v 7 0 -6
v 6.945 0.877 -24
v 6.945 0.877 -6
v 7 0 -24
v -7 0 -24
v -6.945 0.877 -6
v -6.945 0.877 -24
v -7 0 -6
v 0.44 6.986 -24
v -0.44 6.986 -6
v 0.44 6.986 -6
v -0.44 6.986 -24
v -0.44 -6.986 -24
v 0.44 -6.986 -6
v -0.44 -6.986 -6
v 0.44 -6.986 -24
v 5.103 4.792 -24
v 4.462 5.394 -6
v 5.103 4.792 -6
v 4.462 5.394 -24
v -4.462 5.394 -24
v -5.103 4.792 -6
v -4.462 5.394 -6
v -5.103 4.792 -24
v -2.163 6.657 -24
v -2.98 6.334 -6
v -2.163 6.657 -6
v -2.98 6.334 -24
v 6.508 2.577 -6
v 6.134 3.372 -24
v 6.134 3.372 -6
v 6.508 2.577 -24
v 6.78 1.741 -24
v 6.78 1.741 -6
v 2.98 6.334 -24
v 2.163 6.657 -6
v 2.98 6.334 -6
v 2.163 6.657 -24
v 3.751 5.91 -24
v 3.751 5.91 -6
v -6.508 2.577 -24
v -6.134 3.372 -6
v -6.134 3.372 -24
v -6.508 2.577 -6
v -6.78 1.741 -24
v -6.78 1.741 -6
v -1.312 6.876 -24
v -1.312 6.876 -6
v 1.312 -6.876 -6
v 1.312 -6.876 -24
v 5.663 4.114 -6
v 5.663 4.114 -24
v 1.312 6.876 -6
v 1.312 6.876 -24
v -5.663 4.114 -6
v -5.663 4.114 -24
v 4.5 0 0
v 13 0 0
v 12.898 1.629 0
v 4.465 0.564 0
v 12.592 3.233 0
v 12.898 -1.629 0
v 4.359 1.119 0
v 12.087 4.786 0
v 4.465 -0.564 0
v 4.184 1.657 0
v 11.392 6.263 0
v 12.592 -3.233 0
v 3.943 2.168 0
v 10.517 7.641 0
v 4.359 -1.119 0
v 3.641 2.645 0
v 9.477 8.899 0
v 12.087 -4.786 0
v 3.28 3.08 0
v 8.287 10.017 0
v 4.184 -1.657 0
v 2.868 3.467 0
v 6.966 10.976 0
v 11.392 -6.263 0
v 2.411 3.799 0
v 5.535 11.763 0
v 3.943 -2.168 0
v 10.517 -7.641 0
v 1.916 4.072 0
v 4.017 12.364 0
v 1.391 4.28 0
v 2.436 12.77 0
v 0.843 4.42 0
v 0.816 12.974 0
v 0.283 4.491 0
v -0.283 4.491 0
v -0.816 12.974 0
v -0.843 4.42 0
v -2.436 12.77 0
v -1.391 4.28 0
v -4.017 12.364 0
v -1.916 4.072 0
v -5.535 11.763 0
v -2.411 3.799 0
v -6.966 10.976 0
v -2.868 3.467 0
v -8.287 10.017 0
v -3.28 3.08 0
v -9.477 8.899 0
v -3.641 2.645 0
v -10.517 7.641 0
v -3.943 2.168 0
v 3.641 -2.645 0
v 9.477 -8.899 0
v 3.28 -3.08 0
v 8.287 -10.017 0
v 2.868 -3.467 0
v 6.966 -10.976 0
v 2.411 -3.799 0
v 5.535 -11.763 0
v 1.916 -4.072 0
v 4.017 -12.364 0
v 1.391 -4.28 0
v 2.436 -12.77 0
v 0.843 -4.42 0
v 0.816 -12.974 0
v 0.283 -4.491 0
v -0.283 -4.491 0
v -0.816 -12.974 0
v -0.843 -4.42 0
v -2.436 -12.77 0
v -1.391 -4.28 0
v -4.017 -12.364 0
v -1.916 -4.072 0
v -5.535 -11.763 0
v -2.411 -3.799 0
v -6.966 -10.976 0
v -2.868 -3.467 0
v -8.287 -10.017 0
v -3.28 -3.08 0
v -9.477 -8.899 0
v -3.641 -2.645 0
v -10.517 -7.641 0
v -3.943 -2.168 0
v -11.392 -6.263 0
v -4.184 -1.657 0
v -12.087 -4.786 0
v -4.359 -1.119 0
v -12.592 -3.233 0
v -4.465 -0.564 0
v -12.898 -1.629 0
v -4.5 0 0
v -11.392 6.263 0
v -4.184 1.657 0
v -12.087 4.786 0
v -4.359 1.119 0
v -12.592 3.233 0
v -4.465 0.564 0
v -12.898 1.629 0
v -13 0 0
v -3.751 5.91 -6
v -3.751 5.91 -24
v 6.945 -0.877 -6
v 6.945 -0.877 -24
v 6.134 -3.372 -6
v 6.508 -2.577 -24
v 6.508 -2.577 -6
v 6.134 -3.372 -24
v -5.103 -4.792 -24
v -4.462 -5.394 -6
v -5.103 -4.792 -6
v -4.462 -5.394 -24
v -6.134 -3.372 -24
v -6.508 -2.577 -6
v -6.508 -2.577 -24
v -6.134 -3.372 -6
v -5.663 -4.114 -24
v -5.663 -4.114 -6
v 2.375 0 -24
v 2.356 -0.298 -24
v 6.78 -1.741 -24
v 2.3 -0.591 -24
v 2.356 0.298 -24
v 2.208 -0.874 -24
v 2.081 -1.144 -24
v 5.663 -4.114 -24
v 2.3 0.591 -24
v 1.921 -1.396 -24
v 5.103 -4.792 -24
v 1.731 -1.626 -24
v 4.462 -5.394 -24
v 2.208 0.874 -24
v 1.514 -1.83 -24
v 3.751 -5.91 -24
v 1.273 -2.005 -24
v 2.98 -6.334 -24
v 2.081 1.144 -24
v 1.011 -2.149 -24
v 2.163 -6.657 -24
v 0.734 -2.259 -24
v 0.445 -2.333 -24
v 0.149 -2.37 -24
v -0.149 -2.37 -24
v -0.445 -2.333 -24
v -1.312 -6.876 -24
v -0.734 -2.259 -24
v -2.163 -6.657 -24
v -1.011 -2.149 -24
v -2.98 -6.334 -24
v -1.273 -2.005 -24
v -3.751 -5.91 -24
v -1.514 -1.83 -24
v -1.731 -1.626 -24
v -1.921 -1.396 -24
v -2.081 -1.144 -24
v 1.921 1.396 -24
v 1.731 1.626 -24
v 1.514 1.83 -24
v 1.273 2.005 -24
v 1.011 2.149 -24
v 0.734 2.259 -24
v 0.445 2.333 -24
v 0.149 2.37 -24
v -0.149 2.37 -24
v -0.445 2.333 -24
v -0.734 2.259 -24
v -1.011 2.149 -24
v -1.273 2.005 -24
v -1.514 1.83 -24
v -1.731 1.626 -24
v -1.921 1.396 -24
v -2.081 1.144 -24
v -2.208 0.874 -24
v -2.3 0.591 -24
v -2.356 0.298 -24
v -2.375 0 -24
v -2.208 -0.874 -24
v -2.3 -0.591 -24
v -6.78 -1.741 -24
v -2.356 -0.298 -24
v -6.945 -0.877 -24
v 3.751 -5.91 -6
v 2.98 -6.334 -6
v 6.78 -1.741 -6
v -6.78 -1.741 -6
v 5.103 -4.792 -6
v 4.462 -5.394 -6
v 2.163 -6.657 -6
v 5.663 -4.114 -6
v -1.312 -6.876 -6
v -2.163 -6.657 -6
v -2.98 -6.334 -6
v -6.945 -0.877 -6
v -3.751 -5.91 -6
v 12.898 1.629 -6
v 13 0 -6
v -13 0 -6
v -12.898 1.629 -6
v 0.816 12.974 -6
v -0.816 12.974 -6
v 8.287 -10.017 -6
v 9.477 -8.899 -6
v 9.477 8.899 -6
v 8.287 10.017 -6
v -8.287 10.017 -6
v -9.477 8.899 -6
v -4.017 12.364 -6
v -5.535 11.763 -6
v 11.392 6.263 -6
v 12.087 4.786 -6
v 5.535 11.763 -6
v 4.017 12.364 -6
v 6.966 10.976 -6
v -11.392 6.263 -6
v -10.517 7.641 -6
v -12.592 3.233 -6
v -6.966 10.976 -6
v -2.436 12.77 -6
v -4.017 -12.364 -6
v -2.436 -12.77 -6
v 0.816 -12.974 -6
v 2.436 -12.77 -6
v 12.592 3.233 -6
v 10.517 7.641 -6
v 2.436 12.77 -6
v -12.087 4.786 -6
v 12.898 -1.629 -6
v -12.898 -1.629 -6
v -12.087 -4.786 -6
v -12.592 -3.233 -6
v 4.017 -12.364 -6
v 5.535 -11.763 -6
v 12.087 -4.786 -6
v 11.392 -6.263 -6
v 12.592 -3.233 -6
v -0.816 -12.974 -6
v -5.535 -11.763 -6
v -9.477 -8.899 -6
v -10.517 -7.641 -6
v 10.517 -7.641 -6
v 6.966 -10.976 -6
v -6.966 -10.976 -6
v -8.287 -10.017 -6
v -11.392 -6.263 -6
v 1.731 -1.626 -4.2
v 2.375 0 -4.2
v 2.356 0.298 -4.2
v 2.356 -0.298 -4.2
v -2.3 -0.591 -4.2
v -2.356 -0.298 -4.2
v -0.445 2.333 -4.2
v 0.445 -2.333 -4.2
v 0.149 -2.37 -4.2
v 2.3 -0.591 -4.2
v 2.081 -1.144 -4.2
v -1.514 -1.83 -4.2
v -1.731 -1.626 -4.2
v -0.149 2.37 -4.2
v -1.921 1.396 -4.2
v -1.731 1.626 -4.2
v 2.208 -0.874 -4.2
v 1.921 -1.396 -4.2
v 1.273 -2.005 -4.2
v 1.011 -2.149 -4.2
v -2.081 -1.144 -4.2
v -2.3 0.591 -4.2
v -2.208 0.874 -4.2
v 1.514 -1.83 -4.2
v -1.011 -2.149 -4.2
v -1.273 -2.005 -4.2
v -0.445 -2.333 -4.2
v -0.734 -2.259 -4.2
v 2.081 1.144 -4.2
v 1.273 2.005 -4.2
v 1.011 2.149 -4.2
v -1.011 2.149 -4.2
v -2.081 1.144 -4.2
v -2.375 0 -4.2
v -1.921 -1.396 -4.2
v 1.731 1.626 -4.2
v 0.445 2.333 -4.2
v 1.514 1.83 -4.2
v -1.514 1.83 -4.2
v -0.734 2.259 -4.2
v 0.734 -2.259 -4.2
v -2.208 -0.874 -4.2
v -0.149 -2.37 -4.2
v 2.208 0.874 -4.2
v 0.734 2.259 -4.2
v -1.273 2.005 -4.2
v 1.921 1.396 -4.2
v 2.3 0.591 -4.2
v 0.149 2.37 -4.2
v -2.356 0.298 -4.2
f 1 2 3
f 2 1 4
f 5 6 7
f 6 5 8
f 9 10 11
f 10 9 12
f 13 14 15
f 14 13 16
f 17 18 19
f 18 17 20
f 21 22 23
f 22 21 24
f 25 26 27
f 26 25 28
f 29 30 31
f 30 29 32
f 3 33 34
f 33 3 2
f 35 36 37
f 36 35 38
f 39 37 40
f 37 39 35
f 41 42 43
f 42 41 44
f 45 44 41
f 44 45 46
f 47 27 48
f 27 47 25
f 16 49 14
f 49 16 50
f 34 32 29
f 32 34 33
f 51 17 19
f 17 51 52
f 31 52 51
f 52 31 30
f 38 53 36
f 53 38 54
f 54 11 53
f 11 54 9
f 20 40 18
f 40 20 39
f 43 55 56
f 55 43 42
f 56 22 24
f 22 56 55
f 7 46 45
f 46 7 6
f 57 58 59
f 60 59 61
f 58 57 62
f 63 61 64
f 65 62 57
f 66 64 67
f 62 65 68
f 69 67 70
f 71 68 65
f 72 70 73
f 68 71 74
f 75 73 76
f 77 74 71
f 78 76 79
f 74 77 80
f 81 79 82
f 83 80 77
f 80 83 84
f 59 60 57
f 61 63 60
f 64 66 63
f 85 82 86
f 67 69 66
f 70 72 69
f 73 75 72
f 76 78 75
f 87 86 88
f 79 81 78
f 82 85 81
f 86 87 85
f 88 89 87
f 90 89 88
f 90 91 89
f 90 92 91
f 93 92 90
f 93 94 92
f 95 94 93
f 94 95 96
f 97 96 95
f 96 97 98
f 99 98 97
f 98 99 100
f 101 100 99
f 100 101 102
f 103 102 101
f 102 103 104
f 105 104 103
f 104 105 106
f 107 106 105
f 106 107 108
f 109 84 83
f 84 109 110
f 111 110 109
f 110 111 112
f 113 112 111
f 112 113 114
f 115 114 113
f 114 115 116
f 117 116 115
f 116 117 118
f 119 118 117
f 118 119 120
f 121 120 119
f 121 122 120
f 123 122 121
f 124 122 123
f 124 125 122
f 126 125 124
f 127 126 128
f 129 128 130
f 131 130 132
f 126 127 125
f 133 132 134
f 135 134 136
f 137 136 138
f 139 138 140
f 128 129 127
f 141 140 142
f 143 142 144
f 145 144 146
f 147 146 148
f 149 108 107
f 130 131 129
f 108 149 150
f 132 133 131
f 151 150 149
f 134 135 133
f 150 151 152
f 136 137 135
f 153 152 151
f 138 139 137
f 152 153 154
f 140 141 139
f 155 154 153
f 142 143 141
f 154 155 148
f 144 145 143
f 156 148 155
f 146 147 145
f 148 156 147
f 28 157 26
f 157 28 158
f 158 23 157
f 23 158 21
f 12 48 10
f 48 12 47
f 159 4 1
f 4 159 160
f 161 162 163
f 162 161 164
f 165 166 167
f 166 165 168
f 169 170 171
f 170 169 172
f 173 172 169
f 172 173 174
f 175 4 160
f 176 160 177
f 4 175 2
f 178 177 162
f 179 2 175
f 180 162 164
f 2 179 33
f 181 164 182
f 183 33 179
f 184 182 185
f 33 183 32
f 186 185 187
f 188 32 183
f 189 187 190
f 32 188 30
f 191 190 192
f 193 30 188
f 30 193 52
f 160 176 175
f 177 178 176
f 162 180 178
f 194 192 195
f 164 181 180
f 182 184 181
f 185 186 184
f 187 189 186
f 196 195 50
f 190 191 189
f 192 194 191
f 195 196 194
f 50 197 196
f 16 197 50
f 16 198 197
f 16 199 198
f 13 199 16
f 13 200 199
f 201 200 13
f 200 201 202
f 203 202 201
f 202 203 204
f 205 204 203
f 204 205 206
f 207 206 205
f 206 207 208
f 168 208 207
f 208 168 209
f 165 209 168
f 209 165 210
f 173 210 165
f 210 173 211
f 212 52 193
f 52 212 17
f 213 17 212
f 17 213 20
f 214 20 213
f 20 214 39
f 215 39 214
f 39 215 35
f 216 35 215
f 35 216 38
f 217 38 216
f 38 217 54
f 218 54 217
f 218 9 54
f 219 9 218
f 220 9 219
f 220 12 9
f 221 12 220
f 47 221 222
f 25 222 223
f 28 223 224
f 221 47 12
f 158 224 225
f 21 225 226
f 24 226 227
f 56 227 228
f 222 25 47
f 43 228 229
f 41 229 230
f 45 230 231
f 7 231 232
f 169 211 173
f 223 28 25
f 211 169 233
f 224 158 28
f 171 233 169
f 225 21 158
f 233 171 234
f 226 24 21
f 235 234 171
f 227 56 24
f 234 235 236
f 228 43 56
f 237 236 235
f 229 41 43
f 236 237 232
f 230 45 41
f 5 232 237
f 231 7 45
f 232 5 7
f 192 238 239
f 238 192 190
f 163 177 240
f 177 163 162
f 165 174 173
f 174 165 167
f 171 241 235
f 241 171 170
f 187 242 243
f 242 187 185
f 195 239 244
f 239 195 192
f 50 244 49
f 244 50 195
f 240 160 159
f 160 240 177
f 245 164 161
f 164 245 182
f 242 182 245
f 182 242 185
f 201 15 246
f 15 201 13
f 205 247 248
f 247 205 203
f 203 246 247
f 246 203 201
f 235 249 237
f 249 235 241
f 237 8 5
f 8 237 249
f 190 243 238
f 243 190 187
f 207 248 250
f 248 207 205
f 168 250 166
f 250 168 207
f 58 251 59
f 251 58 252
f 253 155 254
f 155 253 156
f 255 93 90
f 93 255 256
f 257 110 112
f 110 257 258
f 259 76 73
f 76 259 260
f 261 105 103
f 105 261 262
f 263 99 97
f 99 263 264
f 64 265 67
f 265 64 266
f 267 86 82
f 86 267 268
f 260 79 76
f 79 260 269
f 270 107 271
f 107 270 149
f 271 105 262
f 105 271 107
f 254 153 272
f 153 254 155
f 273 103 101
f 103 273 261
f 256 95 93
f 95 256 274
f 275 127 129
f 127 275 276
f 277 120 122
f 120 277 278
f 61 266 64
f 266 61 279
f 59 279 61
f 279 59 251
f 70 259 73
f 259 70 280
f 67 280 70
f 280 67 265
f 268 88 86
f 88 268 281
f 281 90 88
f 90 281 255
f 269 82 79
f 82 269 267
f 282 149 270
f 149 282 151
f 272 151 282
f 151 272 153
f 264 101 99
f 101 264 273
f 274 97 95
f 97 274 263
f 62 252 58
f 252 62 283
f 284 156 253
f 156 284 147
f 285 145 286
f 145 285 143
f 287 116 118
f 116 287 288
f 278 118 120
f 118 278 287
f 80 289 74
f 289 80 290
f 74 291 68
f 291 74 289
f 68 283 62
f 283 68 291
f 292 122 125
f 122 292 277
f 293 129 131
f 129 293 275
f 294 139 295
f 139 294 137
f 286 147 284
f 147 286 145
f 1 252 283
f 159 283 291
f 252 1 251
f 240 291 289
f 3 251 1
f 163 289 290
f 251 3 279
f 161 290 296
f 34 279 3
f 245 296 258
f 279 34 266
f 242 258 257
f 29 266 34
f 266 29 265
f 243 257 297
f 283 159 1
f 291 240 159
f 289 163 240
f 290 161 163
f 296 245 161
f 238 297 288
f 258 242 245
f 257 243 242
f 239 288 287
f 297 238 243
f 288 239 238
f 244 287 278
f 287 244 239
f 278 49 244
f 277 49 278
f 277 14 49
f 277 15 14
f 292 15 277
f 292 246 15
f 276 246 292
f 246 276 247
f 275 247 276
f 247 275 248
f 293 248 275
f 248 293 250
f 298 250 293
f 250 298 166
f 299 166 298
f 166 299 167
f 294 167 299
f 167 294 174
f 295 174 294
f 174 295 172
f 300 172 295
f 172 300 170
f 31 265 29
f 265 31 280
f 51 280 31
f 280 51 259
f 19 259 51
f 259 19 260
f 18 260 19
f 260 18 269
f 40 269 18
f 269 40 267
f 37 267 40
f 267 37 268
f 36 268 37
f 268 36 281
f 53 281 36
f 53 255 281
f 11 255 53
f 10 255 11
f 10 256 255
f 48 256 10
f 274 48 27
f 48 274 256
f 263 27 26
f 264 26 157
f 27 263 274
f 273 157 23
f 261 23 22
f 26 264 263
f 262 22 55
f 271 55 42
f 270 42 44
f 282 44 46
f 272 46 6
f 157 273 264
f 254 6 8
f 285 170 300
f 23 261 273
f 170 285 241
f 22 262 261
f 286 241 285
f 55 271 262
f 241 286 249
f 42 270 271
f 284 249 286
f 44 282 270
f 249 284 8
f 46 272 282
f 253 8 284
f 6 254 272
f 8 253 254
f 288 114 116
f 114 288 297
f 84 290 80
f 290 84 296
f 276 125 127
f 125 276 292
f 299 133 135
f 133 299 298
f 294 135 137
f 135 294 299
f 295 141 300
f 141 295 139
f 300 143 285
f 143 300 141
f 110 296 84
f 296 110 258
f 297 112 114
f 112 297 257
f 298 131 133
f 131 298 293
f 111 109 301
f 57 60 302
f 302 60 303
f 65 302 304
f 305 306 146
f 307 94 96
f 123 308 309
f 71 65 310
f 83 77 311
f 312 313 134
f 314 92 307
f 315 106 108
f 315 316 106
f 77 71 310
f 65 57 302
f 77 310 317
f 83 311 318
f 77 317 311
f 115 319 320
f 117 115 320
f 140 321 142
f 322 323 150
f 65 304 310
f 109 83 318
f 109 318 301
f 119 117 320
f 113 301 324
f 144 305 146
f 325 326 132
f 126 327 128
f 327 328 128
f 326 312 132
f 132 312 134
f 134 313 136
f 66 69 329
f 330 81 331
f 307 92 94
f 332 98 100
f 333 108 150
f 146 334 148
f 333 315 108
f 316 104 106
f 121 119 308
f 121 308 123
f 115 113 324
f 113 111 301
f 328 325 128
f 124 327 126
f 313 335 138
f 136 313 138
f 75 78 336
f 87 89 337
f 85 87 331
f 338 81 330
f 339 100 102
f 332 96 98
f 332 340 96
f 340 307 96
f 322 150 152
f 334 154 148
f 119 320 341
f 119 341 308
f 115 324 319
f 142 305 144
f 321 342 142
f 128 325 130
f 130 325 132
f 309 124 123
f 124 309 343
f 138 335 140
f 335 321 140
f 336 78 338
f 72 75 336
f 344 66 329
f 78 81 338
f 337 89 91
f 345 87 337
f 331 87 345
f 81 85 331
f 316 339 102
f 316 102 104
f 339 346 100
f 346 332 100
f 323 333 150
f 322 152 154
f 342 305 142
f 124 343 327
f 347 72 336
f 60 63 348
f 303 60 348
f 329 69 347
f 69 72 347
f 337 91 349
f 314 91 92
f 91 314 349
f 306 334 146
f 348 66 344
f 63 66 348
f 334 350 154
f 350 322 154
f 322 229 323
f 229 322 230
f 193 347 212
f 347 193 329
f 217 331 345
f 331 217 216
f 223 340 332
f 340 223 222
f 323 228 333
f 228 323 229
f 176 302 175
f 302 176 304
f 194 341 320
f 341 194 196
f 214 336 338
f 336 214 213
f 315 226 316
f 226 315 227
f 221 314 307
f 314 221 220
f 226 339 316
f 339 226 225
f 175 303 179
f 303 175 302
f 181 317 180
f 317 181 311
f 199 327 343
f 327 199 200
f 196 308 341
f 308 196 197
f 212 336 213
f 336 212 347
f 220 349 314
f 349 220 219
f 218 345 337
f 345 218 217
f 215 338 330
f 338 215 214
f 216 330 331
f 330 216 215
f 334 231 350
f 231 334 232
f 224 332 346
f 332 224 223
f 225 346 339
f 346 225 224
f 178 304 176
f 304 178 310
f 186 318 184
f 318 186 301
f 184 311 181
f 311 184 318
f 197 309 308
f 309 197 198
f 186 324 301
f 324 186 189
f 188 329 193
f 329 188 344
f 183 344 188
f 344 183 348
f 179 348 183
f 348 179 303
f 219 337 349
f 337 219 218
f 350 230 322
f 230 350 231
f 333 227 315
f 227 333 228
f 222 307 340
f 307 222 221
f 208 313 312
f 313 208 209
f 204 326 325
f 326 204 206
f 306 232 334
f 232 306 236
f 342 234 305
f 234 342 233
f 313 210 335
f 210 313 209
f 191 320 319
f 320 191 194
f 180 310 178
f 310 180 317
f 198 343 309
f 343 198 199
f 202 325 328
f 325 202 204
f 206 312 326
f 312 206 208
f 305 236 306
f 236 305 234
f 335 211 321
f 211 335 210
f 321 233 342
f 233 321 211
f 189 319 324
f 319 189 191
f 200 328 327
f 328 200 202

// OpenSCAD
$fn = 50;


difference() {
	union() {
		translate(v = [0, 0, -24.0000000000]) {
			cylinder(h = 24, r = 7.0000000000);
		}
		translate(v = [0, 0, -6.0000000000]) {
			cylinder(h = 6, r = 13.0000000000);
		}
	}
	union() {
		translate(v = [0, 0, 0]) {
			rotate(a = [0, 0, 0]) {
				difference() {
					union() {
						#translate(v = [0, 0, -24.0000000000]) {
							cylinder(h = 24, r = 2.2500000000);
						}
						#translate(v = [0, 0, -4.2000000000]) {
							cylinder(h = 4.2000000000, r1 = 2.3750000000, r2 = 4.5000000000);
						}
						#translate(v = [0, 0, -24.0000000000]) {
							cylinder(h = 24, r = 2.3750000000);
						}
						#translate(v = [0, 0, -24.0000000000]) {
							cylinder(h = 24, r = 2.2500000000);
						}
					}
					union();
				}
			}
		}
	}
}
